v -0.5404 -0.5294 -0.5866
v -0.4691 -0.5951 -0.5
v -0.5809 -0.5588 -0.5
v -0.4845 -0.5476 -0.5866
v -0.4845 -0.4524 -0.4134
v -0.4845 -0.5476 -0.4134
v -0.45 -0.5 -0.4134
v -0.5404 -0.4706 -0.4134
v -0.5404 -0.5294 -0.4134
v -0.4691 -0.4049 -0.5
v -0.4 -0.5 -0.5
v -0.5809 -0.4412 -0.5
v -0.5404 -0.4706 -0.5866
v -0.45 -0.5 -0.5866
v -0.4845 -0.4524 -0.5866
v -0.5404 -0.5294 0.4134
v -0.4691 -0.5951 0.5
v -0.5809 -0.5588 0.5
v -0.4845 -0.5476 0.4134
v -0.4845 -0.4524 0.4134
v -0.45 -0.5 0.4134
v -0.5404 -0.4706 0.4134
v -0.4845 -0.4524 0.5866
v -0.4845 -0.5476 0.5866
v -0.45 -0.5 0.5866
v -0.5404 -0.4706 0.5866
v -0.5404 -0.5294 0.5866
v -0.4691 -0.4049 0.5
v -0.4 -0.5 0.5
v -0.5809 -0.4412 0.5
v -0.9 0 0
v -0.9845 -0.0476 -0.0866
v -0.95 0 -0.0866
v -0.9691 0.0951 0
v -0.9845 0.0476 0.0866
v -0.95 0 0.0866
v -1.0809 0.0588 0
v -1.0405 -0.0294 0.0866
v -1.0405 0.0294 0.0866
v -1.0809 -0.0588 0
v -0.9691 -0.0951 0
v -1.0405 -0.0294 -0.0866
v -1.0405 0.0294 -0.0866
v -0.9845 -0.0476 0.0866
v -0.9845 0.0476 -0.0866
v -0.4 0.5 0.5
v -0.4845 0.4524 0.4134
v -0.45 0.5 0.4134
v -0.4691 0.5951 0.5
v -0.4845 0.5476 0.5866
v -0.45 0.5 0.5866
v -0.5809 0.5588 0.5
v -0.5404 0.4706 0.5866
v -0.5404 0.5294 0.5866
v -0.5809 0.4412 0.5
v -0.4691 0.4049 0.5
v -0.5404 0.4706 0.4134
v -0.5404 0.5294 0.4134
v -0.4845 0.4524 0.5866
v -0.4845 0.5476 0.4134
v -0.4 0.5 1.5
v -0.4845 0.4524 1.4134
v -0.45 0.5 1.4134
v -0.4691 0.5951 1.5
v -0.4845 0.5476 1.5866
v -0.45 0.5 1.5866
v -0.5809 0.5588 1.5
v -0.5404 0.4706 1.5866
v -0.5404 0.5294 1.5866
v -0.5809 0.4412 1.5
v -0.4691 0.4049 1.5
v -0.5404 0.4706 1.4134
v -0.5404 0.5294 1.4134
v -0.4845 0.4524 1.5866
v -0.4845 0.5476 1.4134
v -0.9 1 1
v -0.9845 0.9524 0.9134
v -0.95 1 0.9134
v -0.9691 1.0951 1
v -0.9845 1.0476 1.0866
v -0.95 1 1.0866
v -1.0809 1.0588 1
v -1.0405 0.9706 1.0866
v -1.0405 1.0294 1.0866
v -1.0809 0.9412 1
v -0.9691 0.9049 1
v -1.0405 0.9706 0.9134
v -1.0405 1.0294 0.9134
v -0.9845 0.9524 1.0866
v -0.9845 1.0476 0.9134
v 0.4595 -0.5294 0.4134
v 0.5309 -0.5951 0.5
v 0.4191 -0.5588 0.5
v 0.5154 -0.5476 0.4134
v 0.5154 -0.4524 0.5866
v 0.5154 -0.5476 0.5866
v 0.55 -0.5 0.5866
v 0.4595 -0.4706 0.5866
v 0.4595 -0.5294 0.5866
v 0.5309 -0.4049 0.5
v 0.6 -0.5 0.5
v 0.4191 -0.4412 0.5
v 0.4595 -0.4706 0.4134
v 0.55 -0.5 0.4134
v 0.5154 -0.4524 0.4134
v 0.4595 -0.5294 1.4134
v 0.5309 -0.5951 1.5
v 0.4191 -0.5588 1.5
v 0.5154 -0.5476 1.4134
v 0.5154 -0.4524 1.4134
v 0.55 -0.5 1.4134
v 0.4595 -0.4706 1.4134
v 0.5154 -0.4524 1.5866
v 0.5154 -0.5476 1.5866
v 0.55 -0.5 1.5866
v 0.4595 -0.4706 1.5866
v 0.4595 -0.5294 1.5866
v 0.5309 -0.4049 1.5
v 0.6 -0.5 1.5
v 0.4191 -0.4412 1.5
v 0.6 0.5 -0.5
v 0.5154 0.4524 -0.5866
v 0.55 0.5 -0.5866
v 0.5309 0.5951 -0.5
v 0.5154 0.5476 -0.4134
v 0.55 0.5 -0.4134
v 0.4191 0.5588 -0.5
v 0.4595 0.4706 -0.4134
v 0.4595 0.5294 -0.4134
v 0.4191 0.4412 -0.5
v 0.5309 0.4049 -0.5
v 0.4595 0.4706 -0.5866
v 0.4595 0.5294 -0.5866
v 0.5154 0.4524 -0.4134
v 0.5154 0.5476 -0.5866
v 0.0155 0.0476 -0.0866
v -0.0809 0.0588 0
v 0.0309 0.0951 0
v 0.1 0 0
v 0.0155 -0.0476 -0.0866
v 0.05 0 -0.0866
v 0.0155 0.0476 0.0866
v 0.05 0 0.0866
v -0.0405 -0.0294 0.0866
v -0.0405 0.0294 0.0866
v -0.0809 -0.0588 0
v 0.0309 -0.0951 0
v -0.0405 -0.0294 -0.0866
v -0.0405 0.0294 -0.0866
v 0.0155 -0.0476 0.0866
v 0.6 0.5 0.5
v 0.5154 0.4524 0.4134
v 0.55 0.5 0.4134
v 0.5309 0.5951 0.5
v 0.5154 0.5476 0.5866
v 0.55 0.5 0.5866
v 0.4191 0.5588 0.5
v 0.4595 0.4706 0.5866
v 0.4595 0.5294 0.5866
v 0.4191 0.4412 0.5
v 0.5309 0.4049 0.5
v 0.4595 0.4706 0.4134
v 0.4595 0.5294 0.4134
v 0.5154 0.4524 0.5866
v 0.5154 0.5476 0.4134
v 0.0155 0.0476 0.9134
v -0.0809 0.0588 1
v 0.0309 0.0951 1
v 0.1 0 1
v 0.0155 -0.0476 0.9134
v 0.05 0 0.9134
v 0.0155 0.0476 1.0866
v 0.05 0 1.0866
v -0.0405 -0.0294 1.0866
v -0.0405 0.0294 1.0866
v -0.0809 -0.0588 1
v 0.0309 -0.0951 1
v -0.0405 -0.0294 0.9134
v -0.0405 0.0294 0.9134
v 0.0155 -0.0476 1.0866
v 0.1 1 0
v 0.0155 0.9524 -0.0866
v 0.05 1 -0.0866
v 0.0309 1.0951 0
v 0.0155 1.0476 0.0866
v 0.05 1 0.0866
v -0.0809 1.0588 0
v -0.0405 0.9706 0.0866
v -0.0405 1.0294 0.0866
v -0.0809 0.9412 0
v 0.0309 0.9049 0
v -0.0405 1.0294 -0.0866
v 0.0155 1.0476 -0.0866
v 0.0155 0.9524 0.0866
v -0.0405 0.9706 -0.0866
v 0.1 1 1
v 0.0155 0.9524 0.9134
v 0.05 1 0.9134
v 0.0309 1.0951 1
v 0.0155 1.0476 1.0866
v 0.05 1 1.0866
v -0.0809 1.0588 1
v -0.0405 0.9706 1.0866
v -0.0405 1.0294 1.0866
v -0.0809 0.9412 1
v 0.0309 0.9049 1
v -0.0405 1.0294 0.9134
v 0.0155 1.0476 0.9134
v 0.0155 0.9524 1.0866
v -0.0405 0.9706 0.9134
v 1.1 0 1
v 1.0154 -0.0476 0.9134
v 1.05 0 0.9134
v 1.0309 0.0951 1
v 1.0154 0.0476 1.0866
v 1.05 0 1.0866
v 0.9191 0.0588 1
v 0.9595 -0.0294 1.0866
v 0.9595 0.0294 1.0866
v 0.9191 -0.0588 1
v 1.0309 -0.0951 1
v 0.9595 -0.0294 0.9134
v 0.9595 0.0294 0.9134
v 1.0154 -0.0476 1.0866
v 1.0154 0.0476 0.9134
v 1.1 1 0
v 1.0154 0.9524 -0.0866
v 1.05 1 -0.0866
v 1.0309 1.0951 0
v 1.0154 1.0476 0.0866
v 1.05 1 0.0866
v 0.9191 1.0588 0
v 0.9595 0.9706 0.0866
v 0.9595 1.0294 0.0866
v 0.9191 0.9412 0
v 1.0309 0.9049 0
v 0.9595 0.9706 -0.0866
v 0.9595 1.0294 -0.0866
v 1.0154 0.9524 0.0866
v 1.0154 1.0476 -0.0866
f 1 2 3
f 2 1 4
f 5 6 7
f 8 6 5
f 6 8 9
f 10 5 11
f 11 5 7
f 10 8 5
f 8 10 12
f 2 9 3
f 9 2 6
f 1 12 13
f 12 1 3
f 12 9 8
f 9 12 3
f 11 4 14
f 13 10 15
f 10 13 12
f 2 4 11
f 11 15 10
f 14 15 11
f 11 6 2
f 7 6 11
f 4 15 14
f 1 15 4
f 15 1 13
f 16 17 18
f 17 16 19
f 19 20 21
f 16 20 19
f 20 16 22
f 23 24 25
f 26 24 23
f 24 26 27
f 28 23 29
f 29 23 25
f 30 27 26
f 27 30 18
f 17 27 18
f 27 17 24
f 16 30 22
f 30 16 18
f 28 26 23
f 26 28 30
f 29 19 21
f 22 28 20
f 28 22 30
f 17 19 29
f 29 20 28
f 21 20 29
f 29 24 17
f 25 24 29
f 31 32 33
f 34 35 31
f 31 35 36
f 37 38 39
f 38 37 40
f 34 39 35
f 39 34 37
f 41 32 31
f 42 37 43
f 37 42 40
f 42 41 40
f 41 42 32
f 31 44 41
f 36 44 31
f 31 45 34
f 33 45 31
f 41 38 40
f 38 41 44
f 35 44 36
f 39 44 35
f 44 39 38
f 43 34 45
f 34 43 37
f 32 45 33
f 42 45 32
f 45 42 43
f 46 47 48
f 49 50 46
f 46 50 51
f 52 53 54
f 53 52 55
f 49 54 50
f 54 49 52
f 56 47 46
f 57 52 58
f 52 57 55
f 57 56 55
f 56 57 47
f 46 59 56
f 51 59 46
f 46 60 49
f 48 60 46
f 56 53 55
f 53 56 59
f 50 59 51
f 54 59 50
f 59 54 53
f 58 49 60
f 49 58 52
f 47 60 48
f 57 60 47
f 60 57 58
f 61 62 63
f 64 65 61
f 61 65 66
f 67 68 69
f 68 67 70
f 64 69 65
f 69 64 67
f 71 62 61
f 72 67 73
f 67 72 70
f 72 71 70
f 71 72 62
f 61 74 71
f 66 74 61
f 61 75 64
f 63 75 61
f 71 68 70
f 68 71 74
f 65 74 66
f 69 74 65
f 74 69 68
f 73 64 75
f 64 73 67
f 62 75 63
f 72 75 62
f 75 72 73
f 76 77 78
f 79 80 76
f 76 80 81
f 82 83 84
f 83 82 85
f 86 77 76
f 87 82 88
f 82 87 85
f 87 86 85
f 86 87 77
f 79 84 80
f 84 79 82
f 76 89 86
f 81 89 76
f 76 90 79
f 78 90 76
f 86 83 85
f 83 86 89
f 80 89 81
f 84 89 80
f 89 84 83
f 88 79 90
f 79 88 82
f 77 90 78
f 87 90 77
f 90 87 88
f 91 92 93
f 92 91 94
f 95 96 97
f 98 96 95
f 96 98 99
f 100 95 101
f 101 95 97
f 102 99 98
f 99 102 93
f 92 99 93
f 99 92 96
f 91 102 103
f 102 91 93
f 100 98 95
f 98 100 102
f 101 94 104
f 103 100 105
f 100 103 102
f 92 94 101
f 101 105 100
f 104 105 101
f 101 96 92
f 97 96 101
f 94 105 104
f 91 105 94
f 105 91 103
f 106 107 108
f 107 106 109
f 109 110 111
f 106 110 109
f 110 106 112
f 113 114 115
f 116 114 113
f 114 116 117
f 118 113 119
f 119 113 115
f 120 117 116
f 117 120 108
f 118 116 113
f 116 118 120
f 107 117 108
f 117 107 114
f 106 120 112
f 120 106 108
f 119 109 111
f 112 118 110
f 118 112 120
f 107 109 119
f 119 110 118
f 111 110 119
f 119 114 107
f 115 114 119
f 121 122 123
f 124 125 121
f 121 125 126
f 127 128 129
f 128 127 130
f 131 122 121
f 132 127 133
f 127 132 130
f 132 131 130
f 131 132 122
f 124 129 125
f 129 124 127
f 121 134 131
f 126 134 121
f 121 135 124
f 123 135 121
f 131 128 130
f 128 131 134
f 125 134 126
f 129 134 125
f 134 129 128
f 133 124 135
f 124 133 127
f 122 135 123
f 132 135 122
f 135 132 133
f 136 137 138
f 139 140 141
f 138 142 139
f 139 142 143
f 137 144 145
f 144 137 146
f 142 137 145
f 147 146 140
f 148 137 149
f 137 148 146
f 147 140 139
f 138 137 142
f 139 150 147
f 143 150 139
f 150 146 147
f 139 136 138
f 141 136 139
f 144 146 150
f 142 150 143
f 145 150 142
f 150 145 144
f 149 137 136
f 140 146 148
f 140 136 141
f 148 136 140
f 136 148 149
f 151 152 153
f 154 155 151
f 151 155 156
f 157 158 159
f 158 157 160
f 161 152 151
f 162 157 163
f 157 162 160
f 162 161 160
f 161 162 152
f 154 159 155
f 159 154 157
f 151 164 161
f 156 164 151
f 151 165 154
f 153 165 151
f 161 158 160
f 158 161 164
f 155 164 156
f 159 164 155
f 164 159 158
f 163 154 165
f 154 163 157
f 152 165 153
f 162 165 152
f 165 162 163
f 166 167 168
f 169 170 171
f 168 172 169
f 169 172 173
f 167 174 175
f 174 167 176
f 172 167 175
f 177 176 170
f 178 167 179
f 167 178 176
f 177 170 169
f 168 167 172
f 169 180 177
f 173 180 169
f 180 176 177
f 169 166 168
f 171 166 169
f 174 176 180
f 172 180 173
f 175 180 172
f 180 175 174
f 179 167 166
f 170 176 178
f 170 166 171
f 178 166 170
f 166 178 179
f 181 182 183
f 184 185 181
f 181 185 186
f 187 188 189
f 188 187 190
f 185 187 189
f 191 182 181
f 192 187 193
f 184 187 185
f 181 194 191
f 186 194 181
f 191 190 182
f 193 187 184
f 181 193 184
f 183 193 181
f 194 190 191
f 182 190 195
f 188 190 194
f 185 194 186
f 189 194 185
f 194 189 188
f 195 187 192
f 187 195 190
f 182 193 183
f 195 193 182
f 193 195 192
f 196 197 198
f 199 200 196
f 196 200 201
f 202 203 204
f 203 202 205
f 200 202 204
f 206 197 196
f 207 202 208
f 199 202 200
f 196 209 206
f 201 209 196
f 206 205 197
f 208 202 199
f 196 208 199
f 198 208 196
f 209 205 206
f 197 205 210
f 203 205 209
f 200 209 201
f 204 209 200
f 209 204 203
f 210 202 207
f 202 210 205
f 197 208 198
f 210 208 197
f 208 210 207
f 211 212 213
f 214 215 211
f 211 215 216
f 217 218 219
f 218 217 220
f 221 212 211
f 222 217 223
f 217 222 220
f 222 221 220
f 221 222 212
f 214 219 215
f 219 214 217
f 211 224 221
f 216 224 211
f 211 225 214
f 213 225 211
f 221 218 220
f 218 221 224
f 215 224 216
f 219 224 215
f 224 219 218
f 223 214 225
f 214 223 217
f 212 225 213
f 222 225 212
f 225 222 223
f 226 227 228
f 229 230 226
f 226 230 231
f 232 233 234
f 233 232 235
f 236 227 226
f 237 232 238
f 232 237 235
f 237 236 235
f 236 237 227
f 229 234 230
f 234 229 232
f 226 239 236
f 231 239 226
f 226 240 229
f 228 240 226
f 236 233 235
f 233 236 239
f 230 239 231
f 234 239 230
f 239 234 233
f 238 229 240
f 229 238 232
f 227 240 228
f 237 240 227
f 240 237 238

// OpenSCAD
// Centered cubic grid, as presented in Equation (18) from arXiv:1311.0879


//  Uncut centered cubic grid.
module maille(nb) {
    // Diameter of small balls
    rad = 0.1;
    for (x = [0:nb]) {
        for (y = [0:nb]) {
            for (z = [0:nb]) {
                type = abs((x + y + z) % 2);  // Correspond to color
                x2 = x+0.5; y2 = y+0.5; z2 = z+0.5;
                if (type == 0) {
                        color("red") translate([x, y, z]) sphere(rad);
                        color("blue") translate([x2, y2, z2]) sphere(rad);
                        }
                if (type == 1) {
                    color("green") translate([x, y, z]) sphere(rad);
                    color("yellow") translate([x2, y2, z2]) sphere(rad);
                    }
                }
            }
        }
    }



// Check Equation (19) of arXiv:1311.0879 (n stars at 1).
function filtre(x, y, z, n) = ((x+y+z <= 0 + 2*(n-1))
                               && (x-y-z <= 1/2)
                               && (-x+y-z <= 1)
                               && (-x-y+z <= 3/2)) ? true : false;


// Grid as presented in Equations (18) and (19) of arXiv:1311.0879.
// n : number n in Equation (19): index in the code family, starts at 1.
module grille(n) {
    // Diameter of small balls
    rad = 0.1;
    for (x = [-1:n-1]) {
        for (y = [-1:n-1]) {
            for (z = [-1:n-1]) {
                type = abs((x + y + z) % 2);  // Correspond to color
                if (filtre(x, y, z, n)) {
                    if (type == 0) {
                        color("red") translate([x, y, z]) sphere(rad);
                        }
                    if (type == 1) {
                        color("green") translate([x, y, z]) sphere(rad);
                        }
                    }
                x2 = x+0.5; y2 = y+0.5; z2 = z+0.5;
                if (filtre(x2, y2, z2, n)) {
                    if (type == 0) {
                        color("blue") translate([x2, y2, z2]) sphere(rad);
                        }
                    if (type == 1) {
                        color("yellow") translate([x2, y2, z2]) sphere(rad);
                        }
                    }
                }
            }
        }
    }

//maille(2);
grille(2);
